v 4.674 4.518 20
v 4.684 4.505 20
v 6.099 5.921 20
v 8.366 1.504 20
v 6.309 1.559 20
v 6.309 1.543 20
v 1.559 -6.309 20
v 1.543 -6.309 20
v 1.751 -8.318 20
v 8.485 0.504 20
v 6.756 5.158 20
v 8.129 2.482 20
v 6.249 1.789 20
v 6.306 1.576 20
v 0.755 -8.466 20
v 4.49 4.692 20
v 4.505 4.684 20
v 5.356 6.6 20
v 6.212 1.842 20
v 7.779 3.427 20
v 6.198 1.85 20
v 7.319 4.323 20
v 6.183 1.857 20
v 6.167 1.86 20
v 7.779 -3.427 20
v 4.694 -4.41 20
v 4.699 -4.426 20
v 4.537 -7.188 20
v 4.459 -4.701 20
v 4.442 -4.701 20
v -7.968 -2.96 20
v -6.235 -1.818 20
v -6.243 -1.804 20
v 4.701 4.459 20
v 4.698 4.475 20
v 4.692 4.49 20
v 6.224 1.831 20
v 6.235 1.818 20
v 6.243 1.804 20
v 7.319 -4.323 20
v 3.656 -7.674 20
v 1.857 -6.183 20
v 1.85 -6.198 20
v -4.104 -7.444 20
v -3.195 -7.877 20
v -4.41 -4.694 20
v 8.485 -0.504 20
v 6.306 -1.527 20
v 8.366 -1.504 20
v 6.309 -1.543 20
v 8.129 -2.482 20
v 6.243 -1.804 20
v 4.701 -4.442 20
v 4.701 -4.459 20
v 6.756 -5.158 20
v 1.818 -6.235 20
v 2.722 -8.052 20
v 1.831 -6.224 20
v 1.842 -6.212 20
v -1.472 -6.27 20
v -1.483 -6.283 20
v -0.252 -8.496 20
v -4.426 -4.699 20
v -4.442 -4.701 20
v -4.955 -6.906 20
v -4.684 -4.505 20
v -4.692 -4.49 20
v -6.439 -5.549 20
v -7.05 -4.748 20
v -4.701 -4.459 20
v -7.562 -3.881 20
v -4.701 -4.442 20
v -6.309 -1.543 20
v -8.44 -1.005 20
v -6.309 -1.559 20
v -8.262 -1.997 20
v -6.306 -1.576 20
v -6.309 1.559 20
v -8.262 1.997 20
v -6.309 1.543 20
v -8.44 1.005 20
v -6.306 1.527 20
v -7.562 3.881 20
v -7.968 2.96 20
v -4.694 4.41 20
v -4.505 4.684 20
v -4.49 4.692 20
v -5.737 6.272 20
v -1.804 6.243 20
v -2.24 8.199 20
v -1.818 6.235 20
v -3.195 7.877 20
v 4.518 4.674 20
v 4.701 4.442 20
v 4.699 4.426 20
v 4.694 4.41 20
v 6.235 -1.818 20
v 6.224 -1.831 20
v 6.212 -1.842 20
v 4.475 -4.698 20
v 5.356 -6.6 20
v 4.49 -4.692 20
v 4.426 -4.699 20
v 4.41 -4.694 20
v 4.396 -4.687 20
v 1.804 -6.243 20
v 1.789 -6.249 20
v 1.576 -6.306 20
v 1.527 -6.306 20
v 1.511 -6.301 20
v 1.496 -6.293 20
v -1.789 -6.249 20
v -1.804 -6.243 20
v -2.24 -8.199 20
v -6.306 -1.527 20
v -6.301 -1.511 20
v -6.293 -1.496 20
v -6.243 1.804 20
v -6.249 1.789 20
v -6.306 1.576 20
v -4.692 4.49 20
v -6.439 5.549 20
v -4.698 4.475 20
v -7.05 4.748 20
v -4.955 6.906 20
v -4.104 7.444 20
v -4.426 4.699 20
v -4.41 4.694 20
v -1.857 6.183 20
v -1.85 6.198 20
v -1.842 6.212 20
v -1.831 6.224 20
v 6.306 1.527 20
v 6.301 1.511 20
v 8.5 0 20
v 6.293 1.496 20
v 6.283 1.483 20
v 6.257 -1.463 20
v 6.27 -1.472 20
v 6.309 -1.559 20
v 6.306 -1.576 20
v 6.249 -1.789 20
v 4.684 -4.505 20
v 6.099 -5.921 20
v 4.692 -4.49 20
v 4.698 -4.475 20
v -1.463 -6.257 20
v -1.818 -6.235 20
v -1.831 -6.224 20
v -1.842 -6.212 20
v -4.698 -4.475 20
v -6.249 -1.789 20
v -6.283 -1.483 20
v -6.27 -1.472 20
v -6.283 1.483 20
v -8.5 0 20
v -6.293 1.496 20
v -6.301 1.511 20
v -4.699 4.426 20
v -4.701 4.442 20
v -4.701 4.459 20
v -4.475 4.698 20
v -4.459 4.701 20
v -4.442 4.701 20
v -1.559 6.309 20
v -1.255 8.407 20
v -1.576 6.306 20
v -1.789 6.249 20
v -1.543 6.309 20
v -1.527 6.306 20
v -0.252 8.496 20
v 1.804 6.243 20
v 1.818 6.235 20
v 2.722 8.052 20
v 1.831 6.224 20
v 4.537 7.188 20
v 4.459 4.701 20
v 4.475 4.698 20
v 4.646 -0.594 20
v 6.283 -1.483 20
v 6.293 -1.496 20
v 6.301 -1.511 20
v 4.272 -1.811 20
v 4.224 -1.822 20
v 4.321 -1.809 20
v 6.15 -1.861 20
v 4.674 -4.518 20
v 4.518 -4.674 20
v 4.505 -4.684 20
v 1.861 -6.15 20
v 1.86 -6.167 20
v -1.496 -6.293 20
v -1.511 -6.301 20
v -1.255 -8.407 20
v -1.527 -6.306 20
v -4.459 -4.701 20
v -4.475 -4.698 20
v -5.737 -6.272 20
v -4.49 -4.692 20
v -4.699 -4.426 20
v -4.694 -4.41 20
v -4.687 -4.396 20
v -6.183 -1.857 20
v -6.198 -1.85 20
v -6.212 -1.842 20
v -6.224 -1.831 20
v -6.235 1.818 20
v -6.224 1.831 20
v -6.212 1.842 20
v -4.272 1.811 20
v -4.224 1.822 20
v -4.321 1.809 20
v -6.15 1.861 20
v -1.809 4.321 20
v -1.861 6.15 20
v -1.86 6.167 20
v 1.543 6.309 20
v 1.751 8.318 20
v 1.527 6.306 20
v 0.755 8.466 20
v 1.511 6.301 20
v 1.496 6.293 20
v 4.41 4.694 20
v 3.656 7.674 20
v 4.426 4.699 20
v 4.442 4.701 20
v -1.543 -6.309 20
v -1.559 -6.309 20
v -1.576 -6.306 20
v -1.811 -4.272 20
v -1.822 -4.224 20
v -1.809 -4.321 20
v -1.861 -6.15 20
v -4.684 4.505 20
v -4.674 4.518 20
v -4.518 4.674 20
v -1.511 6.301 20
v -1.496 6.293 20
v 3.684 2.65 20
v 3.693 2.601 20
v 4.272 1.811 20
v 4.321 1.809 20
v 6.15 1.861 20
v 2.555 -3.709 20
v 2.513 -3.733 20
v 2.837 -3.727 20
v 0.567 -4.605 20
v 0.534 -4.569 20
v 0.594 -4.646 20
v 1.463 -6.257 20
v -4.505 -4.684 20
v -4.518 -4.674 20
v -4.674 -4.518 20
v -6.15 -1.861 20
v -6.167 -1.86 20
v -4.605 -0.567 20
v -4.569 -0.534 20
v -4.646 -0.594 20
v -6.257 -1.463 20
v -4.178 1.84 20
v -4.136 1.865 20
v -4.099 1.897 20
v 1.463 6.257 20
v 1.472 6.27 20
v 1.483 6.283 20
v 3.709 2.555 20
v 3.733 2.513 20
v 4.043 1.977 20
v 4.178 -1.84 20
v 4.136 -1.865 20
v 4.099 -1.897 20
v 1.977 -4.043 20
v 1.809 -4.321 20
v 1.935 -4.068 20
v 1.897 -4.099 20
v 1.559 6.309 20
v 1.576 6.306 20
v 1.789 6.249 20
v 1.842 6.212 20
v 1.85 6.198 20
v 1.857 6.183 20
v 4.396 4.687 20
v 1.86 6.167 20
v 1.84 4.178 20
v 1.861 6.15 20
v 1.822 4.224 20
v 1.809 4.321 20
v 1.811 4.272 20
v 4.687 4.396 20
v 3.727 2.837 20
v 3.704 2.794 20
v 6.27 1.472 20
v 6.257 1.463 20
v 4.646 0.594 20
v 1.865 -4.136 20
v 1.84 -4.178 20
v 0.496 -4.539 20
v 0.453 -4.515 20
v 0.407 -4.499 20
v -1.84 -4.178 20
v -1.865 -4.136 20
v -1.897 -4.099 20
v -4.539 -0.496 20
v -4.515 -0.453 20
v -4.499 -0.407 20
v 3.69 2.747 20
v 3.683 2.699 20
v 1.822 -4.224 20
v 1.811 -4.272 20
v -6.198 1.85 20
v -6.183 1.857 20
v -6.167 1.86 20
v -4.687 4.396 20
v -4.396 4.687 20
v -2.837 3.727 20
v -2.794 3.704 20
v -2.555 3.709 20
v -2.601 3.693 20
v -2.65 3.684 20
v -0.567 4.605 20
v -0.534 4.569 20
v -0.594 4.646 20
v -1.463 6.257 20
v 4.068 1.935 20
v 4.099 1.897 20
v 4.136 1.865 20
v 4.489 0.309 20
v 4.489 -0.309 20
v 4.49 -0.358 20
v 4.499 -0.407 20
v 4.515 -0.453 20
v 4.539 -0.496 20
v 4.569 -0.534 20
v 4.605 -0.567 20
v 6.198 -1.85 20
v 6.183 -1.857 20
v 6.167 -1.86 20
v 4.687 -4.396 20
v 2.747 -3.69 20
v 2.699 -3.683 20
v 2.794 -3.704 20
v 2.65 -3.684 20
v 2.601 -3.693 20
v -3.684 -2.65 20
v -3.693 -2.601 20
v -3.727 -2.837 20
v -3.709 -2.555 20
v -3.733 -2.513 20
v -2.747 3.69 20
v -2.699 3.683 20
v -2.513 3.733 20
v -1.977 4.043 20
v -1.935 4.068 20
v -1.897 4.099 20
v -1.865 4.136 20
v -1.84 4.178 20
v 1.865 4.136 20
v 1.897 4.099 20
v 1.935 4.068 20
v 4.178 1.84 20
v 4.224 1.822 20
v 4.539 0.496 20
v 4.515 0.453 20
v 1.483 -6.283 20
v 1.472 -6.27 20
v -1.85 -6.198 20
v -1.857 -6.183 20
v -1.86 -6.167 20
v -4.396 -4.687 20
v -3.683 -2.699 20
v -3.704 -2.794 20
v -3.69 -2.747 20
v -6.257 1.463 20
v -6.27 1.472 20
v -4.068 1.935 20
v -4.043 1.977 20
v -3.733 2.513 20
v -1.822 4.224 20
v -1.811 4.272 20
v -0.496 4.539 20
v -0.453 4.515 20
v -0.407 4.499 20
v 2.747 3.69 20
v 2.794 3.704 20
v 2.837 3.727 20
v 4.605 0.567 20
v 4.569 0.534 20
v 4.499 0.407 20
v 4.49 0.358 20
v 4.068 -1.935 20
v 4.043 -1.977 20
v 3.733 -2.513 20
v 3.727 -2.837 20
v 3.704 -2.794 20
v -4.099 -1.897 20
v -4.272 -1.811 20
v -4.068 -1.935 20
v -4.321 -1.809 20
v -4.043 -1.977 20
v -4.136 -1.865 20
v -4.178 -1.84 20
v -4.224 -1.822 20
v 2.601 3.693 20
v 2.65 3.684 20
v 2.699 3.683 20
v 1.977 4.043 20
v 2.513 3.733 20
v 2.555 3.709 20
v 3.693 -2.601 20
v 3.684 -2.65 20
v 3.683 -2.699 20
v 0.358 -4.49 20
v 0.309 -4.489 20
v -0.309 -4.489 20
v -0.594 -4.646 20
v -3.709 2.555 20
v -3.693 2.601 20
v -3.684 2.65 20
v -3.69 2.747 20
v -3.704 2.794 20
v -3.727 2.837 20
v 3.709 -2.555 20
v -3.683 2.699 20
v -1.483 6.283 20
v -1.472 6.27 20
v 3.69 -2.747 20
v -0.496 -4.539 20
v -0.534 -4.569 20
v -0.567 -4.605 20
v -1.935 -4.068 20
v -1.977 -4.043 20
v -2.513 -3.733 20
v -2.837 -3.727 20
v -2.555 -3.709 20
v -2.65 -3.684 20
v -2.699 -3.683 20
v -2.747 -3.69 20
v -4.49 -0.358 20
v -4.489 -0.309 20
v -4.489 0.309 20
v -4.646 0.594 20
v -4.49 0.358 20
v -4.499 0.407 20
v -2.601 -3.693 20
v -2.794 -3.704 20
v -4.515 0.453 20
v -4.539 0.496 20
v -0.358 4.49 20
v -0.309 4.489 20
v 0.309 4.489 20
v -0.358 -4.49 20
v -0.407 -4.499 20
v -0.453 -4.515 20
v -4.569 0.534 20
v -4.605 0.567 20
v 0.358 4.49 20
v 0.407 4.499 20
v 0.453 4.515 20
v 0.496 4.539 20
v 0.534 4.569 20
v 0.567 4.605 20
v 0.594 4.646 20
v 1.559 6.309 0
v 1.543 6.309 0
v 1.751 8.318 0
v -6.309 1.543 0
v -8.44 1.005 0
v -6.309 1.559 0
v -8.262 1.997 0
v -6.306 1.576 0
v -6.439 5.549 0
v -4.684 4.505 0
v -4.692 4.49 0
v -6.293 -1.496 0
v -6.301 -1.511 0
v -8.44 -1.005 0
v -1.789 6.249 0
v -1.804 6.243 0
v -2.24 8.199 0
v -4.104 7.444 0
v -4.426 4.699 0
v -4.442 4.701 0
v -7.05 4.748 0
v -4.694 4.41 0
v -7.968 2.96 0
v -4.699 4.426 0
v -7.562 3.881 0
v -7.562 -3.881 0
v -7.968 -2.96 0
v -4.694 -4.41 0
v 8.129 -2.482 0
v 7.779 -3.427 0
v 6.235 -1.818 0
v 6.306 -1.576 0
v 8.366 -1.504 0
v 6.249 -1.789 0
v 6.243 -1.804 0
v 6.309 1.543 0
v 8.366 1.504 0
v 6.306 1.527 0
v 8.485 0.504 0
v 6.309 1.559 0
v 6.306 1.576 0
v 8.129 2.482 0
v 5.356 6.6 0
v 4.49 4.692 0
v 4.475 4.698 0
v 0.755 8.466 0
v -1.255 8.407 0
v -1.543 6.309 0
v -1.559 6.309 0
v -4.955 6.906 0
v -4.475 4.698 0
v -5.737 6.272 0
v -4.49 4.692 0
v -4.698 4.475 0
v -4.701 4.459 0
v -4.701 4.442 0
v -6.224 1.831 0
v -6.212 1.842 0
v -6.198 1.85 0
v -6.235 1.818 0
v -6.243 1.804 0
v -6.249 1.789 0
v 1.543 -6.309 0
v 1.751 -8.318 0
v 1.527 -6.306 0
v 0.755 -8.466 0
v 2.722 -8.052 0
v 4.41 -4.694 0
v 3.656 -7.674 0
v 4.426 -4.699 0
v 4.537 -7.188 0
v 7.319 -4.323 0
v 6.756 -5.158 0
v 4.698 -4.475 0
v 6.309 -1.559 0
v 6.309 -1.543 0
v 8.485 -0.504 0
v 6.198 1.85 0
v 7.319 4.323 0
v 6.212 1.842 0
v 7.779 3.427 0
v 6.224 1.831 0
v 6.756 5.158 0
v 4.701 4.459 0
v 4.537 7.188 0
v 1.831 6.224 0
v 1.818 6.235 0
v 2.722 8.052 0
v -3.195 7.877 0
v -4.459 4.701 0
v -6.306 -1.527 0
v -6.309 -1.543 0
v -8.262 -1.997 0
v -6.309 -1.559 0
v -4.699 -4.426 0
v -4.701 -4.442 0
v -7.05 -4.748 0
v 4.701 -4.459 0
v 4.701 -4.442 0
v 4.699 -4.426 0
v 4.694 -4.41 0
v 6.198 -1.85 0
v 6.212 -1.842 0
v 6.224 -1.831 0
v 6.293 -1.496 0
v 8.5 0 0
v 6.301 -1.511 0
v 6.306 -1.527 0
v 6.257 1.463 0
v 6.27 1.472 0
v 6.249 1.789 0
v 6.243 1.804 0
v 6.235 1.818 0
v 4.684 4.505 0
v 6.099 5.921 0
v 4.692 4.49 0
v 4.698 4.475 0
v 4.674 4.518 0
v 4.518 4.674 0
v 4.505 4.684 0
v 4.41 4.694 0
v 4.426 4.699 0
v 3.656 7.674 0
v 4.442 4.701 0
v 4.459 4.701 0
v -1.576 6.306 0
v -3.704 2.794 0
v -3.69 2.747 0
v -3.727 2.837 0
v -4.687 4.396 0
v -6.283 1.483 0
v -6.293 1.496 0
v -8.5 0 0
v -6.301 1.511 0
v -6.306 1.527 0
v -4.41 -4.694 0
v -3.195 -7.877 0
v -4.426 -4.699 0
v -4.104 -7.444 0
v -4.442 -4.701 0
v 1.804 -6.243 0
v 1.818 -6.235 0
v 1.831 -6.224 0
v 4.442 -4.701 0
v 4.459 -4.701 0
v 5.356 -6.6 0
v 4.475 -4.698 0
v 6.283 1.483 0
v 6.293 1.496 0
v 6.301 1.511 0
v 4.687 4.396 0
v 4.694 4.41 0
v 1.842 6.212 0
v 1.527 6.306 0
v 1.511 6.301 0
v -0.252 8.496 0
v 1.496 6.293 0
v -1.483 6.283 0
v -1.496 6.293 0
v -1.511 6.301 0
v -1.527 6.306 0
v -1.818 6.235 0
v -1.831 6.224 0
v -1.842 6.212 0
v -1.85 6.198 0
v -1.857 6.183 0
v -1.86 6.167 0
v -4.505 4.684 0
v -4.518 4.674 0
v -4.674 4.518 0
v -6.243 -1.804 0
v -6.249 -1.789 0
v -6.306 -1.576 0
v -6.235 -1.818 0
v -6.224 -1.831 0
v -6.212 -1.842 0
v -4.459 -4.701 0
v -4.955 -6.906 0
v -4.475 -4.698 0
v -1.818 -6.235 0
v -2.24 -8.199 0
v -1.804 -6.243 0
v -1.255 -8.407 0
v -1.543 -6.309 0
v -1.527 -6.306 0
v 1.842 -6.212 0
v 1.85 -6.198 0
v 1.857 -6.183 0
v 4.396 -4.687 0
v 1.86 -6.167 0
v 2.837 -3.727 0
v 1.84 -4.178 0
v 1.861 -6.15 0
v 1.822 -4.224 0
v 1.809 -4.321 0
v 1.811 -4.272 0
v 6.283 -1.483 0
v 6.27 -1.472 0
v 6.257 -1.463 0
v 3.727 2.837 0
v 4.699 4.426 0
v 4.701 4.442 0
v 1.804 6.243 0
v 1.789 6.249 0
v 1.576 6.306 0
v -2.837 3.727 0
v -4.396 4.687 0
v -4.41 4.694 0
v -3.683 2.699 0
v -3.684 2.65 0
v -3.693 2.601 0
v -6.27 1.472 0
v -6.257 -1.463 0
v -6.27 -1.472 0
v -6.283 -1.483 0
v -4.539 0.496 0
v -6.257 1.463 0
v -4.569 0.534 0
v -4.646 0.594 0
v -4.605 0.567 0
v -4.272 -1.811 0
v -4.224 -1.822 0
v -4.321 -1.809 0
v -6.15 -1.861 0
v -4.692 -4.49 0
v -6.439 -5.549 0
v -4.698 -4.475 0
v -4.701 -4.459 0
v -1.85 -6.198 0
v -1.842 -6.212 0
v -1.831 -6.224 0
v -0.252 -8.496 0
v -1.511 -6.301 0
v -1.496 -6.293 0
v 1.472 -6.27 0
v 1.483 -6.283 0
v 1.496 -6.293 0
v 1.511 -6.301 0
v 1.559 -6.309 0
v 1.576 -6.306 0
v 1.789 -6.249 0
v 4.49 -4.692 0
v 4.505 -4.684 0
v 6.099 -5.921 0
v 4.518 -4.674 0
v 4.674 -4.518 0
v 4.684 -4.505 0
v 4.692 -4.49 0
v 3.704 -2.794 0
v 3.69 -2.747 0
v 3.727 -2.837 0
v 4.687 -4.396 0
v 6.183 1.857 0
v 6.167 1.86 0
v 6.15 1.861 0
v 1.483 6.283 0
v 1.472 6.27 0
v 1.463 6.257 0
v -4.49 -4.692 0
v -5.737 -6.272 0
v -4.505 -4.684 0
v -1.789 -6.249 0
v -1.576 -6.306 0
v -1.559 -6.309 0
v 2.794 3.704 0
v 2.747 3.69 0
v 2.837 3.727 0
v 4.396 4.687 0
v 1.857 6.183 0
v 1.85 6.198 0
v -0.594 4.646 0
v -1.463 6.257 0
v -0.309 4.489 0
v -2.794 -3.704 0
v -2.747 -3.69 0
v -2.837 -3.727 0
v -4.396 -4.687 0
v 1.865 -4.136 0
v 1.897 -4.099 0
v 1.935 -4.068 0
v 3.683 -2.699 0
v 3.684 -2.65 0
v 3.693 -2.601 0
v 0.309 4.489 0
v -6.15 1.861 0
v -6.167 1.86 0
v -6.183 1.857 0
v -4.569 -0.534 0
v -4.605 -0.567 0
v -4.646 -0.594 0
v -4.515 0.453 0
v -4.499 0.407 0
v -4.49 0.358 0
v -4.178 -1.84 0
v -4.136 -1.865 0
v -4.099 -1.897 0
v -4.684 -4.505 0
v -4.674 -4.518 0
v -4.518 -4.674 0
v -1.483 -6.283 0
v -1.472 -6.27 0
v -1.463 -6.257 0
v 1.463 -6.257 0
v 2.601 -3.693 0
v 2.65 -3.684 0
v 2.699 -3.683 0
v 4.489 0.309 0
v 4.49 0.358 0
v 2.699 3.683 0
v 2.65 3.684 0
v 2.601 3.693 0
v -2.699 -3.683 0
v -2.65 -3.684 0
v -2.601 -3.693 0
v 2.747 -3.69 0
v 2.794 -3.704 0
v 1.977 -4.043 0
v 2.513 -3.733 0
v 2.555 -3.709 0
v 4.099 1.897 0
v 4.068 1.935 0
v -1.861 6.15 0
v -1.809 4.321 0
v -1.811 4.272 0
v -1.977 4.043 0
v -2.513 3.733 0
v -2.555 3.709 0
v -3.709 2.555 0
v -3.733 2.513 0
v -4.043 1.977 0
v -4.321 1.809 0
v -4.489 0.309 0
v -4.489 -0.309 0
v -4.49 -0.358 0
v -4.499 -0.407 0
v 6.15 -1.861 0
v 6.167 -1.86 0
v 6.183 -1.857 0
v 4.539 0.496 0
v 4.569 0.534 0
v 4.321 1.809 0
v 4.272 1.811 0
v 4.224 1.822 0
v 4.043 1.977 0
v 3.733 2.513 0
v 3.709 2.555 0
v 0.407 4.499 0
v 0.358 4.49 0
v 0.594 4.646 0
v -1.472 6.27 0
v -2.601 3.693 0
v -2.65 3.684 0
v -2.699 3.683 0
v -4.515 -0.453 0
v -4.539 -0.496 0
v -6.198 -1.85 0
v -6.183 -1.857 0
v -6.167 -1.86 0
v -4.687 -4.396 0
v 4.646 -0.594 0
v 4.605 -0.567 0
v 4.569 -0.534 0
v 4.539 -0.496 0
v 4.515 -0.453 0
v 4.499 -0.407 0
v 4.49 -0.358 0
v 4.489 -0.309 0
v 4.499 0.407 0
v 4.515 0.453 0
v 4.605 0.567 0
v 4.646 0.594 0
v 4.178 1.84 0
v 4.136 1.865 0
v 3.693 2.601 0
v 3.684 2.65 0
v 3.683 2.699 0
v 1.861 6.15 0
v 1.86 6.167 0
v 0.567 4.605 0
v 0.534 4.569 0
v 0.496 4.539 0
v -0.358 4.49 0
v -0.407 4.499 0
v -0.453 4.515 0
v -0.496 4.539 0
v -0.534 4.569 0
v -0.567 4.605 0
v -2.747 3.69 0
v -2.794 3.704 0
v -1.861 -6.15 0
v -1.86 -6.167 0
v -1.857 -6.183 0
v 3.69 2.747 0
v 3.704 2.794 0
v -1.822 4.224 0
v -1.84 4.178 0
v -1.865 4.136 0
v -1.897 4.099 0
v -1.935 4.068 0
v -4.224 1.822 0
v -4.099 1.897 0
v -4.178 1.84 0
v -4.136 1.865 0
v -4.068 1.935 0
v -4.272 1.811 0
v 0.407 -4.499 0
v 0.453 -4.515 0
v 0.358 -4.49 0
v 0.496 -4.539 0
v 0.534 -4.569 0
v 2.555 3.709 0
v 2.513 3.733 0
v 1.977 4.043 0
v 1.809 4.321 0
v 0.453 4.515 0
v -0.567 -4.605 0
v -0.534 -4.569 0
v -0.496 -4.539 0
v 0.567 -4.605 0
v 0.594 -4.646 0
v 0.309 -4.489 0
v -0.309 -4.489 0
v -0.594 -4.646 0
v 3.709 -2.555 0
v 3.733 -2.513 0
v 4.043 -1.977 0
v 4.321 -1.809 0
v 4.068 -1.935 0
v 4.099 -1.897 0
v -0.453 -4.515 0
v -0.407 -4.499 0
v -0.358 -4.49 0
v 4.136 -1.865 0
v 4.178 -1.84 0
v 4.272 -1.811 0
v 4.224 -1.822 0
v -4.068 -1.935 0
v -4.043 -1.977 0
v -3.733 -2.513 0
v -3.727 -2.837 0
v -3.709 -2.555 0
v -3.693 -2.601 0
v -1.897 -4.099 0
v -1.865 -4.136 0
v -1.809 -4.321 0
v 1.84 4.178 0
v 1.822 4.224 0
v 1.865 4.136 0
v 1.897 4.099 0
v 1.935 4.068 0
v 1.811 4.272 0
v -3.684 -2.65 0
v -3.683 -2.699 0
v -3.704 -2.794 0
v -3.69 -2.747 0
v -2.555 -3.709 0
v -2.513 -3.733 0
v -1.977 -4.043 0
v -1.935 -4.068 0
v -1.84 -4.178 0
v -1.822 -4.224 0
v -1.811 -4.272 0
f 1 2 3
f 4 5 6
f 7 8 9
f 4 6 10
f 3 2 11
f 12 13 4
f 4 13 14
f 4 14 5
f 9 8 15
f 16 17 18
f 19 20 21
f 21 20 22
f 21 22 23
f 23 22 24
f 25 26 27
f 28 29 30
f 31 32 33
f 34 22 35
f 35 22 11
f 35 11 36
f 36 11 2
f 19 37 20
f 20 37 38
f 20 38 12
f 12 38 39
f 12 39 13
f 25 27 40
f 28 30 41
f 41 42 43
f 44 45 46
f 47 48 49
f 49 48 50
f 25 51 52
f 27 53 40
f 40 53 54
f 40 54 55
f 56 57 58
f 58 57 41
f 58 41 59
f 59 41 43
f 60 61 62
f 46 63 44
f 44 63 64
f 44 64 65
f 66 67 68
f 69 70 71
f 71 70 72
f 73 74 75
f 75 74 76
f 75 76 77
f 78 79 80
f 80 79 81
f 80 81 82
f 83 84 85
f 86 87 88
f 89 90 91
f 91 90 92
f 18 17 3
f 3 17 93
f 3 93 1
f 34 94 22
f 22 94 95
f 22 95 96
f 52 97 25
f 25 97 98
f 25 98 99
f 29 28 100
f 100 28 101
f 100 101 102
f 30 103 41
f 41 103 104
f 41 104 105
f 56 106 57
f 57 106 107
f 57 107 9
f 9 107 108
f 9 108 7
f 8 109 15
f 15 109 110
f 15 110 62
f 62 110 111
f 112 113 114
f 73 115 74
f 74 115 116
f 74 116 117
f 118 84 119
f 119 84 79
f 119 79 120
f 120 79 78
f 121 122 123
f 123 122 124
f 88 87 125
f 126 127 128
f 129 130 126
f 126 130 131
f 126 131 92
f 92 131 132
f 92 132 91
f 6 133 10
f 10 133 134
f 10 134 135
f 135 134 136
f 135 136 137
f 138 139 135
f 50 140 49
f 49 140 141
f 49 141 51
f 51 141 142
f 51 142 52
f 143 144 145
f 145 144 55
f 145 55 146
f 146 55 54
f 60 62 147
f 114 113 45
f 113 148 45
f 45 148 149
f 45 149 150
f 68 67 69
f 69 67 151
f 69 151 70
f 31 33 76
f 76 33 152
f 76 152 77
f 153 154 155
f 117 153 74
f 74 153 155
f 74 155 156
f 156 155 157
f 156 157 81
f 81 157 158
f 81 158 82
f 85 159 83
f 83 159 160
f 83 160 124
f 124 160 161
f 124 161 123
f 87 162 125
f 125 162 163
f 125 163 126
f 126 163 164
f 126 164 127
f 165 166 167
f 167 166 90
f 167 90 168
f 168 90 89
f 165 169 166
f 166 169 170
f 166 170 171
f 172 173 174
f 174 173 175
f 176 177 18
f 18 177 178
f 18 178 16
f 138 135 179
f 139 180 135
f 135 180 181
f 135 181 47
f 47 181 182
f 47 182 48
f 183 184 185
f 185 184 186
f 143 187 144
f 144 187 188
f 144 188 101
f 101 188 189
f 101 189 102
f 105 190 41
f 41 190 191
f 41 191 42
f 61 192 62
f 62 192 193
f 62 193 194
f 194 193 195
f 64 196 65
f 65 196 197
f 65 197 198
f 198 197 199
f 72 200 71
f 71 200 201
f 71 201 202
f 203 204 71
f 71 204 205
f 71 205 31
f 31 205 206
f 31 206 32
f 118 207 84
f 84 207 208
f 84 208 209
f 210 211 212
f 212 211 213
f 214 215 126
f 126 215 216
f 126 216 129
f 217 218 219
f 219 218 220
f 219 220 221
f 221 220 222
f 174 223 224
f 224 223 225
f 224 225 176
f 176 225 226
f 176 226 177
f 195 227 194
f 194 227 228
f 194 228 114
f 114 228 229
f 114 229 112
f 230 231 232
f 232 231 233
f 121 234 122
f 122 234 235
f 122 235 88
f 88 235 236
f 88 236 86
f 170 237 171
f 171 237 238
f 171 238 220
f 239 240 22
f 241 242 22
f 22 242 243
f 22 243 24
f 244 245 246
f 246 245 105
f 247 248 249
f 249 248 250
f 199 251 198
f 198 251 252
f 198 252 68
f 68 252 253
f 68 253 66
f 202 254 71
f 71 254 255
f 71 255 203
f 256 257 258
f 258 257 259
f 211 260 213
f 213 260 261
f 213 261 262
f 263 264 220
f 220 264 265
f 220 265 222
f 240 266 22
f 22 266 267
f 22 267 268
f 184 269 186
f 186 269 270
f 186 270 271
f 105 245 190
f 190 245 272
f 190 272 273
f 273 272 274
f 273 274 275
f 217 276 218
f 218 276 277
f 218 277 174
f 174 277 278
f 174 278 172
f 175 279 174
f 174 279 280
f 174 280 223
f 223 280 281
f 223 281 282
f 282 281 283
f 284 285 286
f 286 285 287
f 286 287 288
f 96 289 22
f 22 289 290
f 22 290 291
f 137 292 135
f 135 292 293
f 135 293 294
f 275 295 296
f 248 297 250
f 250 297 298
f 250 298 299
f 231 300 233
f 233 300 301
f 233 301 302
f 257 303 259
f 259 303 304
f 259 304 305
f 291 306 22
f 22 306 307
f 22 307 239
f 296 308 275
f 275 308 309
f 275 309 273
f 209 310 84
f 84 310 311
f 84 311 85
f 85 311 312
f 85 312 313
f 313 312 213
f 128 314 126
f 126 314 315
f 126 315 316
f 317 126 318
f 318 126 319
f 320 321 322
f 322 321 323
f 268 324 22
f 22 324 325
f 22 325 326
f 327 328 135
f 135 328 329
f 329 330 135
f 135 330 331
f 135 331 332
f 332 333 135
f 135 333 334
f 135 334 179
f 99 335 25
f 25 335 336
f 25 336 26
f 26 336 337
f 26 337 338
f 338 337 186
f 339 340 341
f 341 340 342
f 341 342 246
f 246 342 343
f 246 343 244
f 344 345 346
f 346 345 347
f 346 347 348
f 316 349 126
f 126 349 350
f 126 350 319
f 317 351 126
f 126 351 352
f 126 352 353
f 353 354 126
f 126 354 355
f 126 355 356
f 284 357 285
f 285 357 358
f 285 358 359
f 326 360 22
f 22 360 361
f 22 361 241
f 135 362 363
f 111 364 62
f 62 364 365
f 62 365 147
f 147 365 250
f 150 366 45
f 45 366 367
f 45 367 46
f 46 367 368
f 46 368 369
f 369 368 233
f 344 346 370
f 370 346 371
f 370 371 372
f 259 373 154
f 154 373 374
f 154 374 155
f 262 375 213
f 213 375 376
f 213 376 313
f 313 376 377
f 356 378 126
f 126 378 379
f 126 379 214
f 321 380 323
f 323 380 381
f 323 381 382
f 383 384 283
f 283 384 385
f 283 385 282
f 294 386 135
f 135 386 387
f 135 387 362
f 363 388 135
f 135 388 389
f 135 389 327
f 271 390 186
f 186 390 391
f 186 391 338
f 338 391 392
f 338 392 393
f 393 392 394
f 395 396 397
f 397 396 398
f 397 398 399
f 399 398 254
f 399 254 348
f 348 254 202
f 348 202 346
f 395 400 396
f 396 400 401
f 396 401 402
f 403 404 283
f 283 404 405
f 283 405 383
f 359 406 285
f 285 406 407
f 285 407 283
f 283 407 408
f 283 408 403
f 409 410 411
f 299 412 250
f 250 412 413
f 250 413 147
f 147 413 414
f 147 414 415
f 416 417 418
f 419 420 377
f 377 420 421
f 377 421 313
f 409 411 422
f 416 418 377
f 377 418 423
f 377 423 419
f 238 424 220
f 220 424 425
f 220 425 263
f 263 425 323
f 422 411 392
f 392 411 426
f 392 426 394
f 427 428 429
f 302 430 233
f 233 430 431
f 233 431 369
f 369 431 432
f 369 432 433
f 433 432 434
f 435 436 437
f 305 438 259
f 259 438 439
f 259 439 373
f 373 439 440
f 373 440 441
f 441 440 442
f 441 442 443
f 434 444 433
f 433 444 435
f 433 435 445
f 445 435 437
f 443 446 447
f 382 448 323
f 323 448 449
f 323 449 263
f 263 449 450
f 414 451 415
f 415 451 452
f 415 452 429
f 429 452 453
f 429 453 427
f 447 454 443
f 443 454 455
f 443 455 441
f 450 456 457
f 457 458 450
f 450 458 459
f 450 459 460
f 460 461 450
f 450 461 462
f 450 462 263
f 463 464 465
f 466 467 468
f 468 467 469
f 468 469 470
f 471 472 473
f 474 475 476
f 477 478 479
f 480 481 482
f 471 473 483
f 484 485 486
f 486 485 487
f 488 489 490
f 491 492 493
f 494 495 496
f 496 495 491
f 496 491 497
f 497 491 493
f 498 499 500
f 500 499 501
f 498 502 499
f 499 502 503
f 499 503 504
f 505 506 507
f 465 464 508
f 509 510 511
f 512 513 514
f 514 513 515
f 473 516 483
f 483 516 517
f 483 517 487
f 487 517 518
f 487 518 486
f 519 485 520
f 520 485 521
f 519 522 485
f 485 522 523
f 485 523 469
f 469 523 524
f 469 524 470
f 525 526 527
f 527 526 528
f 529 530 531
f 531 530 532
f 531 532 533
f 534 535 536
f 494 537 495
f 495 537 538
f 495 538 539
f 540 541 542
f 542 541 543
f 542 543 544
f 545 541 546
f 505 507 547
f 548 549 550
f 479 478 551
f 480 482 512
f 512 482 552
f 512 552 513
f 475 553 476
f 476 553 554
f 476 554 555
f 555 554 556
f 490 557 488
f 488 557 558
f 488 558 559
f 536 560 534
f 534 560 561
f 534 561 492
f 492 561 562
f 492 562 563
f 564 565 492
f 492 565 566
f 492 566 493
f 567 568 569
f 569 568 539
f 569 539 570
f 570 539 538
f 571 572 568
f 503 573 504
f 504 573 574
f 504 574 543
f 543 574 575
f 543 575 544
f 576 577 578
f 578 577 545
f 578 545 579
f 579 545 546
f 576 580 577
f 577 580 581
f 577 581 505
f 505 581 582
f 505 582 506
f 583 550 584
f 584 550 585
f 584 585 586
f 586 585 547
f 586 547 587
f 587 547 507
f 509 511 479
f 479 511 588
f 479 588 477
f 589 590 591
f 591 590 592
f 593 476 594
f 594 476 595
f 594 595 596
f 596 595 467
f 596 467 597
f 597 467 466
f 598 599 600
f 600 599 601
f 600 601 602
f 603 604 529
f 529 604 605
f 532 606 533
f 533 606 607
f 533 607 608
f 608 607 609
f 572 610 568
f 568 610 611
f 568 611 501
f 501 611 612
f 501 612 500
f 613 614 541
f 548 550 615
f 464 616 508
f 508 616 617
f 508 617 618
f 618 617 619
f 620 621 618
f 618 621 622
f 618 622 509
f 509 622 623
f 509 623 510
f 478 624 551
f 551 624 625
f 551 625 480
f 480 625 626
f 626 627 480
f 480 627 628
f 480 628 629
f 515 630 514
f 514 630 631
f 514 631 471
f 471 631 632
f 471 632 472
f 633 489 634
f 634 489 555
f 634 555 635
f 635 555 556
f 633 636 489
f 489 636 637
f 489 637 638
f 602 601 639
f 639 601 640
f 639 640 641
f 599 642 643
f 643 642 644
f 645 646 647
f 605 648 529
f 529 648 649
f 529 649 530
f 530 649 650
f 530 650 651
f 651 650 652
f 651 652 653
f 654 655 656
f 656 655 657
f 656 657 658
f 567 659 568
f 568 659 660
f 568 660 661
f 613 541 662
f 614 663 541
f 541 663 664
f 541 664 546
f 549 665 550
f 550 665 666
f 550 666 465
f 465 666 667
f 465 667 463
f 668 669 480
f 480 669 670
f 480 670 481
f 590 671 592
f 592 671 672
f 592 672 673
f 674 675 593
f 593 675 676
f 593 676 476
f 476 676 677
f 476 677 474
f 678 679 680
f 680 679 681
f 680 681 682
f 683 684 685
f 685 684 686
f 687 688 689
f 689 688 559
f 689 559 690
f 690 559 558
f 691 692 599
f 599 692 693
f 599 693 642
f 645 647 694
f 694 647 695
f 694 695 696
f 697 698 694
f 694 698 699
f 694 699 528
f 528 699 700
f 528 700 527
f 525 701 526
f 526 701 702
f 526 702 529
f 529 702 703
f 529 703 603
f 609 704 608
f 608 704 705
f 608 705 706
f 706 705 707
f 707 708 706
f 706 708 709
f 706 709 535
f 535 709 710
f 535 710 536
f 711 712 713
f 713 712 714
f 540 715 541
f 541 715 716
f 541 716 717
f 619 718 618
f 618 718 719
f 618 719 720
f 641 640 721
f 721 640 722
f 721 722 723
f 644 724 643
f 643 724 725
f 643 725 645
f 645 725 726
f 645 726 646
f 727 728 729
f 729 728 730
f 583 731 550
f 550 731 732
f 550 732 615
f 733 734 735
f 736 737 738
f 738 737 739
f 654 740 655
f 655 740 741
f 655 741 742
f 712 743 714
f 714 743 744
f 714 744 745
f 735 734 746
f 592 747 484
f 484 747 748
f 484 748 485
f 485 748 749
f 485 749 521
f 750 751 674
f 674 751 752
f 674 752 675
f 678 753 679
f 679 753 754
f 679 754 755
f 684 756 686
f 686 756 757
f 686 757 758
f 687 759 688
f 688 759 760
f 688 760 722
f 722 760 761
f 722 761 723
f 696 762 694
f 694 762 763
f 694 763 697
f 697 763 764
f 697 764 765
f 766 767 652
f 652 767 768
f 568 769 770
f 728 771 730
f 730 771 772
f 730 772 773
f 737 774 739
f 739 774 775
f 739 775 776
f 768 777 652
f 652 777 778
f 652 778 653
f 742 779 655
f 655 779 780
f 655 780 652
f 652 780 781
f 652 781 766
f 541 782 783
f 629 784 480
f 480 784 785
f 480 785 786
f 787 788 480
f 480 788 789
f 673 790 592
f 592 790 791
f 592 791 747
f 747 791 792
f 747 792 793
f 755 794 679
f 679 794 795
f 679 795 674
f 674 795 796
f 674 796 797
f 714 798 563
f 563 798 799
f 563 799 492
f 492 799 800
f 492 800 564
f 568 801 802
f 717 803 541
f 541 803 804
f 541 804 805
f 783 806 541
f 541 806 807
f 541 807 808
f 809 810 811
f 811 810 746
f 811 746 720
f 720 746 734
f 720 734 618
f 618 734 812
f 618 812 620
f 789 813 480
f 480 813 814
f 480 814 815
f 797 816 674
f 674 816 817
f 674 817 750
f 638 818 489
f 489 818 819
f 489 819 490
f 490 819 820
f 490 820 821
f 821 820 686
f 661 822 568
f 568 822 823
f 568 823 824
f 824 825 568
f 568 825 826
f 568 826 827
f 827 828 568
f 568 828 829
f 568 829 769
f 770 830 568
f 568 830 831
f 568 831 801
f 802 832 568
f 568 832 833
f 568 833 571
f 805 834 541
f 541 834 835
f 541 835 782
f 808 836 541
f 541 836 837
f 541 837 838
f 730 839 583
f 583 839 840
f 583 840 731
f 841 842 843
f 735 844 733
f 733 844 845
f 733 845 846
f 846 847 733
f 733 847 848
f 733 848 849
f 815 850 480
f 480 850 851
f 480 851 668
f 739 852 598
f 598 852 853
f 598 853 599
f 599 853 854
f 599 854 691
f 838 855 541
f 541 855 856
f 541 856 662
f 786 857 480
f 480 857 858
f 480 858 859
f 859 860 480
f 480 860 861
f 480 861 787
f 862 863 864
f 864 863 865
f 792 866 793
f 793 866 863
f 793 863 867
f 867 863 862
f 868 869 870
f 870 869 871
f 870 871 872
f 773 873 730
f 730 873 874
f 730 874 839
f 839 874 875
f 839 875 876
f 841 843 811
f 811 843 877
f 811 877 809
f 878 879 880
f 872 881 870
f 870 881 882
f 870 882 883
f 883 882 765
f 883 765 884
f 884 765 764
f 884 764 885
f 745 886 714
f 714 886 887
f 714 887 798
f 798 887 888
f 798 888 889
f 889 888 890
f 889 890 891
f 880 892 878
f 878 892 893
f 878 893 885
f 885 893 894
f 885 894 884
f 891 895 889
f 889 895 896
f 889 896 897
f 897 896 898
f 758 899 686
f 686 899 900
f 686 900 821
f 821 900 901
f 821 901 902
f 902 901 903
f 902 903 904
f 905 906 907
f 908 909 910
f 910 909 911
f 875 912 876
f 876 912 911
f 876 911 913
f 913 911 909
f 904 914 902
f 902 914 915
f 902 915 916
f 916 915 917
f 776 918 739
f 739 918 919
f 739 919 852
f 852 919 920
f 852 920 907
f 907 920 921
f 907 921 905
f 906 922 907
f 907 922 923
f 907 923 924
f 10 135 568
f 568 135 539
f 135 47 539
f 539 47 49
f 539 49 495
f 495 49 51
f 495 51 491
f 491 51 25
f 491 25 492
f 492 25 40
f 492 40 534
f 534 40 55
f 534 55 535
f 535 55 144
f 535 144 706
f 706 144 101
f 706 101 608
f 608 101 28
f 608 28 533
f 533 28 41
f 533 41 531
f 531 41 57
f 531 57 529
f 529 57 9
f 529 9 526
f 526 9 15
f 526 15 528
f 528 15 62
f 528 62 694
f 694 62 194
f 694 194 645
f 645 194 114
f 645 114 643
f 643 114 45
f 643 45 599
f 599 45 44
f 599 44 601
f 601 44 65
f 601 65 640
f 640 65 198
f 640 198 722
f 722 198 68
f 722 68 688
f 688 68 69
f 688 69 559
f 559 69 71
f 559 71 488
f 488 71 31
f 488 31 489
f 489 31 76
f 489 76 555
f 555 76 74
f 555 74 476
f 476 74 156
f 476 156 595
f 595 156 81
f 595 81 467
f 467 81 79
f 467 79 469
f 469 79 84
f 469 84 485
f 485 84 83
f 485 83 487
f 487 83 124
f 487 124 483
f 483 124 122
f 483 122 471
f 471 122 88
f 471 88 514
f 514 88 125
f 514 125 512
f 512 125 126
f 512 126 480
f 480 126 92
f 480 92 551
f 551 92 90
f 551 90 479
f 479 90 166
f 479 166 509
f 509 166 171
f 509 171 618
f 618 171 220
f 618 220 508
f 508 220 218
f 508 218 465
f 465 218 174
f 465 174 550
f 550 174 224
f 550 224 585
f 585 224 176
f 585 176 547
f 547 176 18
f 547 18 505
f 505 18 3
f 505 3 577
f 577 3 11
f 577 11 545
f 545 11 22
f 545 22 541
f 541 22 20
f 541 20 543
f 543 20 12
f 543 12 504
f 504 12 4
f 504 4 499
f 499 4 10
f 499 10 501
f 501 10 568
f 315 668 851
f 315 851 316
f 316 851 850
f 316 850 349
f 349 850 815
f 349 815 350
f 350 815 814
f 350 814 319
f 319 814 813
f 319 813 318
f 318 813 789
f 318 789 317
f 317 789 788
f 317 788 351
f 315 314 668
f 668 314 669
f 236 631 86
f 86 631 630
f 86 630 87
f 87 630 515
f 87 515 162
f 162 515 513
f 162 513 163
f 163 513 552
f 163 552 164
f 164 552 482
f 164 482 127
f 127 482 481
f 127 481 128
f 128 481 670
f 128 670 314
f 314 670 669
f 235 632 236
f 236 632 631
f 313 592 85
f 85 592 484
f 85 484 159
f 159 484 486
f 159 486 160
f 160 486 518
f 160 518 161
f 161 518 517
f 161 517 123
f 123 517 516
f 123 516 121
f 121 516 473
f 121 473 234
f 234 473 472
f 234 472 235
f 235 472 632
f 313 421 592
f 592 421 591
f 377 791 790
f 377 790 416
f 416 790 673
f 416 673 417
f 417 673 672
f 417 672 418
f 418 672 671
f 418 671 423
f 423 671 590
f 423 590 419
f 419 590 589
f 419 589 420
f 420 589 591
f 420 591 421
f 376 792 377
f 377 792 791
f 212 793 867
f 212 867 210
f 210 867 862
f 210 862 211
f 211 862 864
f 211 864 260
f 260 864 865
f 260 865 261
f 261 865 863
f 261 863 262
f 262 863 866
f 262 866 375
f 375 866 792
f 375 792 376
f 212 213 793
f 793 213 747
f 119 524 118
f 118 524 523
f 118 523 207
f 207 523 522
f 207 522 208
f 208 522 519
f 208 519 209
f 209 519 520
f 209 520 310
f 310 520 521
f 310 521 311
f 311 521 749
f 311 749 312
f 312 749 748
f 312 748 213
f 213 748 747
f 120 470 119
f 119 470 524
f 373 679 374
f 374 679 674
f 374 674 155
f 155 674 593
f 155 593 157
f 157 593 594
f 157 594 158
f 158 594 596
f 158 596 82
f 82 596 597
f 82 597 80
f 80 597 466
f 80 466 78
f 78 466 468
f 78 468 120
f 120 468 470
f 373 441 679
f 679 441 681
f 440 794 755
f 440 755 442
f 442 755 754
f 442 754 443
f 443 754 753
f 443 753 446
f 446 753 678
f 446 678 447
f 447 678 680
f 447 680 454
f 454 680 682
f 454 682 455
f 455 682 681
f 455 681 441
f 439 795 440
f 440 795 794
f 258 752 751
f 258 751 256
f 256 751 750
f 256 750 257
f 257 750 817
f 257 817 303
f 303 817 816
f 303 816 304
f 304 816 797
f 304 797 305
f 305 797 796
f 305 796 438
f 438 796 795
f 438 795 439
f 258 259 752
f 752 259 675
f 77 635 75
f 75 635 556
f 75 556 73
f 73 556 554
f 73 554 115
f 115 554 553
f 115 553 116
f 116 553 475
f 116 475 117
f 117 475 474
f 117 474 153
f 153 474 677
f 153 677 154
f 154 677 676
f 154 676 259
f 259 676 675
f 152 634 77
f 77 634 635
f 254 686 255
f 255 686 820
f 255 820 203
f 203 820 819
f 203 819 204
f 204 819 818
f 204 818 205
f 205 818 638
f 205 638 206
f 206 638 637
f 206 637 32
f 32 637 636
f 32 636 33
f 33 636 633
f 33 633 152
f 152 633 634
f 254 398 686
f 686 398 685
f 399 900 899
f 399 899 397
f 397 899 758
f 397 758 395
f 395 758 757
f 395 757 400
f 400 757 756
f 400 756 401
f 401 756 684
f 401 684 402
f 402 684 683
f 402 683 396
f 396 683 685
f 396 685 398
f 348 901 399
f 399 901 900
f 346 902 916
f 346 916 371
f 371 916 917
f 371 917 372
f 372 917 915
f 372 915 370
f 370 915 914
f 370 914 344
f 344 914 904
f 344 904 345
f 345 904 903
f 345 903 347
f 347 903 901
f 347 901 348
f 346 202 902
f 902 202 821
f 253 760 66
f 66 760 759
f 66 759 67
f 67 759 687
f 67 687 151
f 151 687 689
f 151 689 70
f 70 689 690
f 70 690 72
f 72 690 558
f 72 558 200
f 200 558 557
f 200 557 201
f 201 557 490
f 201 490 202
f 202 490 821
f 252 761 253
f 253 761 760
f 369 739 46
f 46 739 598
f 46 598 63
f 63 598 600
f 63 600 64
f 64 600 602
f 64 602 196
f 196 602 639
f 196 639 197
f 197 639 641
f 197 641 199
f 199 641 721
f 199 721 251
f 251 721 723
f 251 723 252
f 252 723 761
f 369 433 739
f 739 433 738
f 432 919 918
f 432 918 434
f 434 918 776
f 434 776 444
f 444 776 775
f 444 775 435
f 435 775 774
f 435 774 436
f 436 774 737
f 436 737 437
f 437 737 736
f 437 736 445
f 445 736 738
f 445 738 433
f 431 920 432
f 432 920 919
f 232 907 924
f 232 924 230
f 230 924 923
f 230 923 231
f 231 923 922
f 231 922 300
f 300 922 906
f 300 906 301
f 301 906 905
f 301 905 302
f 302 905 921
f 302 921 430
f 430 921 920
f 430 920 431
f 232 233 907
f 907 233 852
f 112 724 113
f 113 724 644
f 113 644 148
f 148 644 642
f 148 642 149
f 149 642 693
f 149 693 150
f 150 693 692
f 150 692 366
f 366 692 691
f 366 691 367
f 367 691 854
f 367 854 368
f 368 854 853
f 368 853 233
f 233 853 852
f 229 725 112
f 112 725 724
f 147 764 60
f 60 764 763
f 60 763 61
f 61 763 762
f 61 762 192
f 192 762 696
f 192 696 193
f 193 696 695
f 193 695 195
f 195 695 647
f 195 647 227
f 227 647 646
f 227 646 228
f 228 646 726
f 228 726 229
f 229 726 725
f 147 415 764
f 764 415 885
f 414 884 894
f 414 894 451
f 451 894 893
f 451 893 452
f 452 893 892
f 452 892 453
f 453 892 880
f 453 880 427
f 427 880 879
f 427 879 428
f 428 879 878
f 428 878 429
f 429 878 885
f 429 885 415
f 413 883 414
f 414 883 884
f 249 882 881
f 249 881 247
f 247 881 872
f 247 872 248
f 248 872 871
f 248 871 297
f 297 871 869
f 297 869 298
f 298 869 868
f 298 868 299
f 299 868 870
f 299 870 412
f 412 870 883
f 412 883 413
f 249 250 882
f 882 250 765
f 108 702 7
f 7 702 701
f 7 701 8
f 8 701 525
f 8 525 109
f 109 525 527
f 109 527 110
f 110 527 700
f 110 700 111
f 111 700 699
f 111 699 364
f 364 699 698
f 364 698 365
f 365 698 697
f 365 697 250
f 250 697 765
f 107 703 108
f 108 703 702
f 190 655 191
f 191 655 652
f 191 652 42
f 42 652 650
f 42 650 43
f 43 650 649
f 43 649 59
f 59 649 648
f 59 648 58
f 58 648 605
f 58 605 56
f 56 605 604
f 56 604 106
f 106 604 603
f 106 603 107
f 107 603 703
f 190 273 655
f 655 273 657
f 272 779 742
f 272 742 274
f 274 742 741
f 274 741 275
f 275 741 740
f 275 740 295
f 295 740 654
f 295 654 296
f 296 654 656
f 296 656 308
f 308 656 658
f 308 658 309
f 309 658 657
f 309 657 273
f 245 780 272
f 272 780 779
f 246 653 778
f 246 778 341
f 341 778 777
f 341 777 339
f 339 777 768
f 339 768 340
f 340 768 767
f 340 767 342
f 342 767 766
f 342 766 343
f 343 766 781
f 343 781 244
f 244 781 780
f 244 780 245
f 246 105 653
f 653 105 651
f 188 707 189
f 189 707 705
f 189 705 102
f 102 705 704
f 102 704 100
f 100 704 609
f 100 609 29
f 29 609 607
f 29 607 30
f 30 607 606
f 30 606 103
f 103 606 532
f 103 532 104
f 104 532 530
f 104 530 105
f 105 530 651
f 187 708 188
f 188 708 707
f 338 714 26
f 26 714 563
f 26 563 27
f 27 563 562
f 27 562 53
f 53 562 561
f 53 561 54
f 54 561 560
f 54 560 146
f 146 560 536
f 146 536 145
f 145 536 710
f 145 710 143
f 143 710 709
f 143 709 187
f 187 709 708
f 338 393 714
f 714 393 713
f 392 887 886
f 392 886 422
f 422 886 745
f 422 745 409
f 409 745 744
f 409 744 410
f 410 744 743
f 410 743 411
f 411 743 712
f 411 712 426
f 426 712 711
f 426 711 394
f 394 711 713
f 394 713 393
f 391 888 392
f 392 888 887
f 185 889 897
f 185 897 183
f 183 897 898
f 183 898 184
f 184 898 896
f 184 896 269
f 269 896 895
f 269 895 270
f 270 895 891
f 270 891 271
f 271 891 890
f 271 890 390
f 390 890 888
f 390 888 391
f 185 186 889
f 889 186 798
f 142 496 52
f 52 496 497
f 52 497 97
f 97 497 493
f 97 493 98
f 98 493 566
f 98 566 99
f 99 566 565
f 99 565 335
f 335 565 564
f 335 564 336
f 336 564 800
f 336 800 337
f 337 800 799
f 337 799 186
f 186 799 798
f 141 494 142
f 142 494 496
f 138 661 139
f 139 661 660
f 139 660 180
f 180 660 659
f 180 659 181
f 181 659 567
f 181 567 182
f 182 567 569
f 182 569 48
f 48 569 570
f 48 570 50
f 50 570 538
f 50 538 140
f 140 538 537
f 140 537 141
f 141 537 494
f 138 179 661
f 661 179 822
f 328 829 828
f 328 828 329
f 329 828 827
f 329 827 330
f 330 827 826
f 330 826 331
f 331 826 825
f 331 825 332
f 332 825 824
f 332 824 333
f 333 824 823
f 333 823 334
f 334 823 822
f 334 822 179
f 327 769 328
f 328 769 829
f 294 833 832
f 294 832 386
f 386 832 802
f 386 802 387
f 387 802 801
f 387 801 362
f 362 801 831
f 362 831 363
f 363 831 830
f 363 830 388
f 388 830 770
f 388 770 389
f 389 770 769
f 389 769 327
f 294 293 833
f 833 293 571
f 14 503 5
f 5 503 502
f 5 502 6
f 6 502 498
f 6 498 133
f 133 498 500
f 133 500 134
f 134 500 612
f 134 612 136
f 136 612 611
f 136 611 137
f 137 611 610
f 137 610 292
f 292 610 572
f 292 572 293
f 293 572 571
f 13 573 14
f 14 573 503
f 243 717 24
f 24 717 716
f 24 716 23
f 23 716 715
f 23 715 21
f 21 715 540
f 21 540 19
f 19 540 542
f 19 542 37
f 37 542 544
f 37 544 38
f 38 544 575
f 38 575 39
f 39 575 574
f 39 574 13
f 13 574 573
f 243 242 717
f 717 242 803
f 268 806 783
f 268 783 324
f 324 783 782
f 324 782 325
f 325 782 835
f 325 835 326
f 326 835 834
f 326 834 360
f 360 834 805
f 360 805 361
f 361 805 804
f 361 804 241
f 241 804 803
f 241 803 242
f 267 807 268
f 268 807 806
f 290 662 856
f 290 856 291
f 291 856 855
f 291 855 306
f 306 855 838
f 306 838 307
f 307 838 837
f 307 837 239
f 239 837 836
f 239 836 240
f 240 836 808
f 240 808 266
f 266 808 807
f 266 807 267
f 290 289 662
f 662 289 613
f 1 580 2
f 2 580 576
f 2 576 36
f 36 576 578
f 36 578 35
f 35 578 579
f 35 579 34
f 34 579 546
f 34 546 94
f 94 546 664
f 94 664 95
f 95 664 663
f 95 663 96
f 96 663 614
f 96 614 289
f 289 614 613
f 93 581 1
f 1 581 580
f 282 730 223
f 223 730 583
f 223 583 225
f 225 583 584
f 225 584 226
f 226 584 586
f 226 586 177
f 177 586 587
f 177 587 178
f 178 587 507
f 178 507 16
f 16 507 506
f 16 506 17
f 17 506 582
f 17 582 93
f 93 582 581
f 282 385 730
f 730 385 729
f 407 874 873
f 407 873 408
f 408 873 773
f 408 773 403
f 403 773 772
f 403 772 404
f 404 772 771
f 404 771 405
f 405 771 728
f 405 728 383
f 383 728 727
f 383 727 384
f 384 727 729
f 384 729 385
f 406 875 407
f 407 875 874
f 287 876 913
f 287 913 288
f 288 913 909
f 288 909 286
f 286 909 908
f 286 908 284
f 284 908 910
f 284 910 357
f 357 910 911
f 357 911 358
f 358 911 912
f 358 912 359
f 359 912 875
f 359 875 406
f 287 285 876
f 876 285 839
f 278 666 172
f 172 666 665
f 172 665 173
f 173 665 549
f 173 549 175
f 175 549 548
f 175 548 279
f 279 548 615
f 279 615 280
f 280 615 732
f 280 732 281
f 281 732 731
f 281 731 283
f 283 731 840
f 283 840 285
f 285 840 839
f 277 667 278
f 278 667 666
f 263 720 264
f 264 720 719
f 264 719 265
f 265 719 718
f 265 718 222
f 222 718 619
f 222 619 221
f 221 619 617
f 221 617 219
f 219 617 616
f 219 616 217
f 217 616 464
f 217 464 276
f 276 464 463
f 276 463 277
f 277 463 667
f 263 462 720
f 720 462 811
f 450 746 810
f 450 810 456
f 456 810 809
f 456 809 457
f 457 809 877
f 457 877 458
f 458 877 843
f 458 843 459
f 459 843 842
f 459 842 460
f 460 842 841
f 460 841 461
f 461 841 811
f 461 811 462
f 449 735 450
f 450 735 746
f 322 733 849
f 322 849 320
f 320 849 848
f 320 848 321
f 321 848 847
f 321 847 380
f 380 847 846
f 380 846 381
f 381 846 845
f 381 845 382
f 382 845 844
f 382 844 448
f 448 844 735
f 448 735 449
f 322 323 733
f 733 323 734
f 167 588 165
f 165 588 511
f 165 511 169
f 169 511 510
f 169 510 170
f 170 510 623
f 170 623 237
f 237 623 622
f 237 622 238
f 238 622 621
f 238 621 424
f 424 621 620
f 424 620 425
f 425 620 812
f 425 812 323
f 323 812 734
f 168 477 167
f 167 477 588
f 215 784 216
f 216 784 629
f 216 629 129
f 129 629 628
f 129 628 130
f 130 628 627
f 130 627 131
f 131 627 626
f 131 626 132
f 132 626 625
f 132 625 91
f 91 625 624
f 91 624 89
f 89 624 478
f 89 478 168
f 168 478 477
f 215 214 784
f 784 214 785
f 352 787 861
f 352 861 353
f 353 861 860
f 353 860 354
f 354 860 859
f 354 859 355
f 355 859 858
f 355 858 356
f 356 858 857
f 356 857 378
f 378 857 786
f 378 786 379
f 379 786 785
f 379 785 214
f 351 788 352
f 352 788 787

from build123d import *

# Parameters (mm, degrees)
SKETCH1_R           = 8.5
BOSS_EXTRUDE1_DEPTH = 20


with BuildPart() as part:
    # Sketch1 → Boss-Extrude1 (new body)
    with BuildSketch(Plane.XY):
        Circle(SKETCH1_R)
        with BuildLine():
            Line((-1.463336561, 6.256639256), (-0.593931236, 4.646135995))
            ThreePointArc((-0.593931236, 4.646135995), (-0.474689485, 4.525877032), (-0.309320024, 4.489356426))
            ThreePointArc((-0.309320024, 4.489356426), (0, 4.5), (0.309320024, 4.489356426))
            ThreePointArc((0.309320024, 4.489356426), (0.474689485, 4.525877032), (0.593931236, 4.646135995))
            Line((0.593931236, 4.646135995), (1.463336561, 6.256639256))
            ThreePointArc((1.463336561, 6.256639256), (1.510970427, 6.300627973), (1.575572767, 6.30615338))
            ThreePointArc((1.575572767, 6.30615338), (1.682323793, 6.278517871), (1.788590648, 6.249075411))
            ThreePointArc((1.788590648, 6.249075411), (1.841775212, 6.211989098), (1.861032992, 6.150076818))
            Line((1.861032992, 6.150076818), (1.808708459, 4.320637419))
            ThreePointArc((1.808708459, 4.320637419), (1.851845362, 4.156869226), (1.976799214, 4.042556724))
            ThreePointArc((1.976799214, 4.042556724), (2.25, 3.897114317), (2.512557212, 3.7332367))
            ThreePointArc((2.512557212, 3.7332367), (2.674031669, 3.682179741), (2.837427536, 3.726706183))
            Line((2.837427536, 3.726706183), (4.395606264, 4.686740257))
            ThreePointArc((4.395606264, 4.686740257), (4.458852761, 4.70101867), (4.517562732, 4.673502644))
            ThreePointArc((4.517562732, 4.673502644), (4.596194078, 4.596194078), (4.673502644, 4.517562732))
            ThreePointArc((4.673502644, 4.517562732), (4.70101867, 4.458852761), (4.686740257, 4.395606264))
            Line((4.686740257, 4.395606264), (3.726706183, 2.837427536))
            ThreePointArc((3.726706183, 2.837427536), (3.682179741, 2.674031669), (3.7332367, 2.512557212))
            ThreePointArc((3.7332367, 2.512557212), (3.897114317, 2.25), (4.042556724, 1.976799214))
            ThreePointArc((4.042556724, 1.976799214), (4.156869226, 1.851845362), (4.320637419, 1.808708459))
            Line((4.320637419, 1.808708459), (6.150076818, 1.861032992))
            ThreePointArc((6.150076818, 1.861032992), (6.211989098, 1.841775212), (6.249075411, 1.788590648))
            ThreePointArc((6.249075411, 1.788590648), (6.278517871, 1.682323793), (6.30615338, 1.575572767))
            ThreePointArc((6.30615338, 1.575572767), (6.300627973, 1.510970427), (6.256639256, 1.463336561))
            Line((6.256639256, 1.463336561), (4.646135995, 0.593931236))
            ThreePointArc((4.646135995, 0.593931236), (4.525877032, 0.474689485), (4.489356426, 0.309320024))
            ThreePointArc((4.489356426, 0.309320024), (4.5, 0), (4.489356426, -0.309320024))
            ThreePointArc((4.489356426, -0.309320024), (4.525877032, -0.474689485), (4.646135995, -0.593931236))
            Line((4.646135995, -0.593931236), (6.256639256, -1.463336561))
            ThreePointArc((6.256639256, -1.463336561), (6.300627973, -1.510970427), (6.30615338, -1.575572767))
            ThreePointArc((6.30615338, -1.575572767), (6.278517871, -1.682323793), (6.249075411, -1.788590648))
            ThreePointArc((6.249075411, -1.788590648), (6.211989098, -1.841775212), (6.150076818, -1.861032992))
            Line((6.150076818, -1.861032992), (4.320637419, -1.808708459))
            ThreePointArc((4.320637419, -1.808708459), (4.156869226, -1.851845362), (4.042556724, -1.976799214))
            ThreePointArc((4.042556724, -1.976799214), (3.897114317, -2.25), (3.7332367, -2.512557212))
            ThreePointArc((3.7332367, -2.512557212), (3.682179741, -2.674031669), (3.726706183, -2.837427536))
            Line((3.726706183, -2.837427536), (4.686740257, -4.395606264))
            ThreePointArc((4.686740257, -4.395606264), (4.70101867, -4.458852761), (4.673502644, -4.517562732))
            ThreePointArc((4.673502644, -4.517562732), (4.596194078, -4.596194078), (4.517562732, -4.673502644))
            ThreePointArc((4.517562732, -4.673502644), (4.458852761, -4.70101867), (4.395606264, -4.686740257))
            Line((4.395606264, -4.686740257), (2.837427536, -3.726706183))
            ThreePointArc((2.837427536, -3.726706183), (2.674031669, -3.682179741), (2.512557212, -3.7332367))
            ThreePointArc((2.512557212, -3.7332367), (2.25, -3.897114317), (1.976799214, -4.042556724))
            ThreePointArc((1.976799214, -4.042556724), (1.851845362, -4.156869226), (1.808708459, -4.320637419))
            Line((1.808708459, -4.320637419), (1.861032992, -6.150076818))
            ThreePointArc((1.861032992, -6.150076818), (1.841775212, -6.211989098), (1.788590648, -6.249075411))
            ThreePointArc((1.788590648, -6.249075411), (1.682323793, -6.278517871), (1.575572767, -6.30615338))
            ThreePointArc((1.575572767, -6.30615338), (1.510970427, -6.300627973), (1.463336561, -6.256639256))
            Line((1.463336561, -6.256639256), (0.593931236, -4.646135995))
            ThreePointArc((0.593931236, -4.646135995), (0.474689485, -4.525877032), (0.309320024, -4.489356426))
            ThreePointArc((0.309320024, -4.489356426), (0, -4.5), (-0.309320024, -4.489356426))
            ThreePointArc((-0.309320024, -4.489356426), (-0.474689485, -4.525877032), (-0.593931236, -4.646135995))
            Line((-0.593931236, -4.646135995), (-1.463336561, -6.256639256))
            ThreePointArc((-1.463336561, -6.256639256), (-1.510970427, -6.300627973), (-1.575572767, -6.30615338))
            ThreePointArc((-1.575572767, -6.30615338), (-1.682323793, -6.278517871), (-1.788590648, -6.249075411))
            ThreePointArc((-1.788590648, -6.249075411), (-1.841775212, -6.211989098), (-1.861032992, -6.150076818))
            Line((-1.861032992, -6.150076818), (-1.808708459, -4.320637419))
            ThreePointArc((-1.808708459, -4.320637419), (-1.851845362, -4.156869226), (-1.976799214, -4.042556724))
            ThreePointArc((-1.976799214, -4.042556724), (-2.25, -3.897114317), (-2.512557212, -3.7332367))
            ThreePointArc((-2.512557212, -3.7332367), (-2.674031669, -3.682179741), (-2.837427536, -3.726706183))
            Line((-2.837427536, -3.726706183), (-4.395606264, -4.686740257))
            ThreePointArc((-4.395606264, -4.686740257), (-4.458852761, -4.70101867), (-4.517562732, -4.673502644))
            ThreePointArc((-4.517562732, -4.673502644), (-4.596194078, -4.596194078), (-4.673502644, -4.517562732))
            ThreePointArc((-4.673502644, -4.517562732), (-4.70101867, -4.458852761), (-4.686740257, -4.395606264))
            Line((-4.686740257, -4.395606264), (-3.726706183, -2.837427536))
            ThreePointArc((-3.726706183, -2.837427536), (-3.682179741, -2.674031669), (-3.7332367, -2.512557212))
            ThreePointArc((-3.7332367, -2.512557212), (-3.897114317, -2.25), (-4.042556724, -1.976799214))
            ThreePointArc((-4.042556724, -1.976799214), (-4.156869226, -1.851845362), (-4.320637419, -1.808708459))
            Line((-4.320637419, -1.808708459), (-6.150076818, -1.861032992))
            ThreePointArc((-6.150076818, -1.861032992), (-6.211989098, -1.841775212), (-6.249075411, -1.788590648))
            ThreePointArc((-6.249075411, -1.788590648), (-6.278517871, -1.682323793), (-6.30615338, -1.575572767))
            ThreePointArc((-6.30615338, -1.575572767), (-6.300627973, -1.510970427), (-6.256639256, -1.463336561))
            Line((-6.256639256, -1.463336561), (-4.646135995, -0.593931236))
            ThreePointArc((-4.646135995, -0.593931236), (-4.525877032, -0.474689485), (-4.489356426, -0.309320024))
            ThreePointArc((-4.489356426, -0.309320024), (-4.5, 0), (-4.489356426, 0.309320024))
            ThreePointArc((-4.489356426, 0.309320024), (-4.525877032, 0.474689485), (-4.646135995, 0.593931236))
            Line((-4.646135995, 0.593931236), (-6.256639256, 1.463336561))
            ThreePointArc((-6.256639256, 1.463336561), (-6.300627973, 1.510970427), (-6.30615338, 1.575572767))
            ThreePointArc((-6.30615338, 1.575572767), (-6.278517871, 1.682323793), (-6.249075411, 1.788590648))
            ThreePointArc((-6.249075411, 1.788590648), (-6.211989098, 1.841775212), (-6.150076818, 1.861032992))
            Line((-6.150076818, 1.861032992), (-4.320637419, 1.808708459))
            ThreePointArc((-4.320637419, 1.808708459), (-4.156869226, 1.851845362), (-4.042556724, 1.976799214))
            ThreePointArc((-4.042556724, 1.976799214), (-3.897114317, 2.25), (-3.7332367, 2.512557212))
            ThreePointArc((-3.7332367, 2.512557212), (-3.682179741, 2.674031669), (-3.726706183, 2.837427536))
            Line((-3.726706183, 2.837427536), (-4.686740257, 4.395606264))
            ThreePointArc((-4.686740257, 4.395606264), (-4.70101867, 4.458852761), (-4.673502644, 4.517562732))
            ThreePointArc((-4.673502644, 4.517562732), (-4.596194078, 4.596194078), (-4.517562732, 4.673502644))
            ThreePointArc((-4.517562732, 4.673502644), (-4.458852761, 4.70101867), (-4.395606264, 4.686740257))
            Line((-4.395606264, 4.686740257), (-2.837427536, 3.726706183))
            ThreePointArc((-2.837427536, 3.726706183), (-2.674031669, 3.682179741), (-2.512557212, 3.7332367))
            ThreePointArc((-2.512557212, 3.7332367), (-2.25, 3.897114317), (-1.976799214, 4.042556724))
            ThreePointArc((-1.976799214, 4.042556724), (-1.851845362, 4.156869226), (-1.808708459, 4.320637419))
            Line((-1.808708459, 4.320637419), (-1.861032992, 6.150076818))
            ThreePointArc((-1.861032992, 6.150076818), (-1.841775212, 6.211989098), (-1.788590648, 6.249075411))
            ThreePointArc((-1.788590648, 6.249075411), (-1.682323793, 6.278517871), (-1.575572767, 6.30615338))
            ThreePointArc((-1.575572767, 6.30615338), (-1.510970427, 6.300627973), (-1.463336561, 6.256639256))
        make_face(mode=Mode.SUBTRACT)
    extrude(amount=BOSS_EXTRUDE1_DEPTH)


solid = part.part
